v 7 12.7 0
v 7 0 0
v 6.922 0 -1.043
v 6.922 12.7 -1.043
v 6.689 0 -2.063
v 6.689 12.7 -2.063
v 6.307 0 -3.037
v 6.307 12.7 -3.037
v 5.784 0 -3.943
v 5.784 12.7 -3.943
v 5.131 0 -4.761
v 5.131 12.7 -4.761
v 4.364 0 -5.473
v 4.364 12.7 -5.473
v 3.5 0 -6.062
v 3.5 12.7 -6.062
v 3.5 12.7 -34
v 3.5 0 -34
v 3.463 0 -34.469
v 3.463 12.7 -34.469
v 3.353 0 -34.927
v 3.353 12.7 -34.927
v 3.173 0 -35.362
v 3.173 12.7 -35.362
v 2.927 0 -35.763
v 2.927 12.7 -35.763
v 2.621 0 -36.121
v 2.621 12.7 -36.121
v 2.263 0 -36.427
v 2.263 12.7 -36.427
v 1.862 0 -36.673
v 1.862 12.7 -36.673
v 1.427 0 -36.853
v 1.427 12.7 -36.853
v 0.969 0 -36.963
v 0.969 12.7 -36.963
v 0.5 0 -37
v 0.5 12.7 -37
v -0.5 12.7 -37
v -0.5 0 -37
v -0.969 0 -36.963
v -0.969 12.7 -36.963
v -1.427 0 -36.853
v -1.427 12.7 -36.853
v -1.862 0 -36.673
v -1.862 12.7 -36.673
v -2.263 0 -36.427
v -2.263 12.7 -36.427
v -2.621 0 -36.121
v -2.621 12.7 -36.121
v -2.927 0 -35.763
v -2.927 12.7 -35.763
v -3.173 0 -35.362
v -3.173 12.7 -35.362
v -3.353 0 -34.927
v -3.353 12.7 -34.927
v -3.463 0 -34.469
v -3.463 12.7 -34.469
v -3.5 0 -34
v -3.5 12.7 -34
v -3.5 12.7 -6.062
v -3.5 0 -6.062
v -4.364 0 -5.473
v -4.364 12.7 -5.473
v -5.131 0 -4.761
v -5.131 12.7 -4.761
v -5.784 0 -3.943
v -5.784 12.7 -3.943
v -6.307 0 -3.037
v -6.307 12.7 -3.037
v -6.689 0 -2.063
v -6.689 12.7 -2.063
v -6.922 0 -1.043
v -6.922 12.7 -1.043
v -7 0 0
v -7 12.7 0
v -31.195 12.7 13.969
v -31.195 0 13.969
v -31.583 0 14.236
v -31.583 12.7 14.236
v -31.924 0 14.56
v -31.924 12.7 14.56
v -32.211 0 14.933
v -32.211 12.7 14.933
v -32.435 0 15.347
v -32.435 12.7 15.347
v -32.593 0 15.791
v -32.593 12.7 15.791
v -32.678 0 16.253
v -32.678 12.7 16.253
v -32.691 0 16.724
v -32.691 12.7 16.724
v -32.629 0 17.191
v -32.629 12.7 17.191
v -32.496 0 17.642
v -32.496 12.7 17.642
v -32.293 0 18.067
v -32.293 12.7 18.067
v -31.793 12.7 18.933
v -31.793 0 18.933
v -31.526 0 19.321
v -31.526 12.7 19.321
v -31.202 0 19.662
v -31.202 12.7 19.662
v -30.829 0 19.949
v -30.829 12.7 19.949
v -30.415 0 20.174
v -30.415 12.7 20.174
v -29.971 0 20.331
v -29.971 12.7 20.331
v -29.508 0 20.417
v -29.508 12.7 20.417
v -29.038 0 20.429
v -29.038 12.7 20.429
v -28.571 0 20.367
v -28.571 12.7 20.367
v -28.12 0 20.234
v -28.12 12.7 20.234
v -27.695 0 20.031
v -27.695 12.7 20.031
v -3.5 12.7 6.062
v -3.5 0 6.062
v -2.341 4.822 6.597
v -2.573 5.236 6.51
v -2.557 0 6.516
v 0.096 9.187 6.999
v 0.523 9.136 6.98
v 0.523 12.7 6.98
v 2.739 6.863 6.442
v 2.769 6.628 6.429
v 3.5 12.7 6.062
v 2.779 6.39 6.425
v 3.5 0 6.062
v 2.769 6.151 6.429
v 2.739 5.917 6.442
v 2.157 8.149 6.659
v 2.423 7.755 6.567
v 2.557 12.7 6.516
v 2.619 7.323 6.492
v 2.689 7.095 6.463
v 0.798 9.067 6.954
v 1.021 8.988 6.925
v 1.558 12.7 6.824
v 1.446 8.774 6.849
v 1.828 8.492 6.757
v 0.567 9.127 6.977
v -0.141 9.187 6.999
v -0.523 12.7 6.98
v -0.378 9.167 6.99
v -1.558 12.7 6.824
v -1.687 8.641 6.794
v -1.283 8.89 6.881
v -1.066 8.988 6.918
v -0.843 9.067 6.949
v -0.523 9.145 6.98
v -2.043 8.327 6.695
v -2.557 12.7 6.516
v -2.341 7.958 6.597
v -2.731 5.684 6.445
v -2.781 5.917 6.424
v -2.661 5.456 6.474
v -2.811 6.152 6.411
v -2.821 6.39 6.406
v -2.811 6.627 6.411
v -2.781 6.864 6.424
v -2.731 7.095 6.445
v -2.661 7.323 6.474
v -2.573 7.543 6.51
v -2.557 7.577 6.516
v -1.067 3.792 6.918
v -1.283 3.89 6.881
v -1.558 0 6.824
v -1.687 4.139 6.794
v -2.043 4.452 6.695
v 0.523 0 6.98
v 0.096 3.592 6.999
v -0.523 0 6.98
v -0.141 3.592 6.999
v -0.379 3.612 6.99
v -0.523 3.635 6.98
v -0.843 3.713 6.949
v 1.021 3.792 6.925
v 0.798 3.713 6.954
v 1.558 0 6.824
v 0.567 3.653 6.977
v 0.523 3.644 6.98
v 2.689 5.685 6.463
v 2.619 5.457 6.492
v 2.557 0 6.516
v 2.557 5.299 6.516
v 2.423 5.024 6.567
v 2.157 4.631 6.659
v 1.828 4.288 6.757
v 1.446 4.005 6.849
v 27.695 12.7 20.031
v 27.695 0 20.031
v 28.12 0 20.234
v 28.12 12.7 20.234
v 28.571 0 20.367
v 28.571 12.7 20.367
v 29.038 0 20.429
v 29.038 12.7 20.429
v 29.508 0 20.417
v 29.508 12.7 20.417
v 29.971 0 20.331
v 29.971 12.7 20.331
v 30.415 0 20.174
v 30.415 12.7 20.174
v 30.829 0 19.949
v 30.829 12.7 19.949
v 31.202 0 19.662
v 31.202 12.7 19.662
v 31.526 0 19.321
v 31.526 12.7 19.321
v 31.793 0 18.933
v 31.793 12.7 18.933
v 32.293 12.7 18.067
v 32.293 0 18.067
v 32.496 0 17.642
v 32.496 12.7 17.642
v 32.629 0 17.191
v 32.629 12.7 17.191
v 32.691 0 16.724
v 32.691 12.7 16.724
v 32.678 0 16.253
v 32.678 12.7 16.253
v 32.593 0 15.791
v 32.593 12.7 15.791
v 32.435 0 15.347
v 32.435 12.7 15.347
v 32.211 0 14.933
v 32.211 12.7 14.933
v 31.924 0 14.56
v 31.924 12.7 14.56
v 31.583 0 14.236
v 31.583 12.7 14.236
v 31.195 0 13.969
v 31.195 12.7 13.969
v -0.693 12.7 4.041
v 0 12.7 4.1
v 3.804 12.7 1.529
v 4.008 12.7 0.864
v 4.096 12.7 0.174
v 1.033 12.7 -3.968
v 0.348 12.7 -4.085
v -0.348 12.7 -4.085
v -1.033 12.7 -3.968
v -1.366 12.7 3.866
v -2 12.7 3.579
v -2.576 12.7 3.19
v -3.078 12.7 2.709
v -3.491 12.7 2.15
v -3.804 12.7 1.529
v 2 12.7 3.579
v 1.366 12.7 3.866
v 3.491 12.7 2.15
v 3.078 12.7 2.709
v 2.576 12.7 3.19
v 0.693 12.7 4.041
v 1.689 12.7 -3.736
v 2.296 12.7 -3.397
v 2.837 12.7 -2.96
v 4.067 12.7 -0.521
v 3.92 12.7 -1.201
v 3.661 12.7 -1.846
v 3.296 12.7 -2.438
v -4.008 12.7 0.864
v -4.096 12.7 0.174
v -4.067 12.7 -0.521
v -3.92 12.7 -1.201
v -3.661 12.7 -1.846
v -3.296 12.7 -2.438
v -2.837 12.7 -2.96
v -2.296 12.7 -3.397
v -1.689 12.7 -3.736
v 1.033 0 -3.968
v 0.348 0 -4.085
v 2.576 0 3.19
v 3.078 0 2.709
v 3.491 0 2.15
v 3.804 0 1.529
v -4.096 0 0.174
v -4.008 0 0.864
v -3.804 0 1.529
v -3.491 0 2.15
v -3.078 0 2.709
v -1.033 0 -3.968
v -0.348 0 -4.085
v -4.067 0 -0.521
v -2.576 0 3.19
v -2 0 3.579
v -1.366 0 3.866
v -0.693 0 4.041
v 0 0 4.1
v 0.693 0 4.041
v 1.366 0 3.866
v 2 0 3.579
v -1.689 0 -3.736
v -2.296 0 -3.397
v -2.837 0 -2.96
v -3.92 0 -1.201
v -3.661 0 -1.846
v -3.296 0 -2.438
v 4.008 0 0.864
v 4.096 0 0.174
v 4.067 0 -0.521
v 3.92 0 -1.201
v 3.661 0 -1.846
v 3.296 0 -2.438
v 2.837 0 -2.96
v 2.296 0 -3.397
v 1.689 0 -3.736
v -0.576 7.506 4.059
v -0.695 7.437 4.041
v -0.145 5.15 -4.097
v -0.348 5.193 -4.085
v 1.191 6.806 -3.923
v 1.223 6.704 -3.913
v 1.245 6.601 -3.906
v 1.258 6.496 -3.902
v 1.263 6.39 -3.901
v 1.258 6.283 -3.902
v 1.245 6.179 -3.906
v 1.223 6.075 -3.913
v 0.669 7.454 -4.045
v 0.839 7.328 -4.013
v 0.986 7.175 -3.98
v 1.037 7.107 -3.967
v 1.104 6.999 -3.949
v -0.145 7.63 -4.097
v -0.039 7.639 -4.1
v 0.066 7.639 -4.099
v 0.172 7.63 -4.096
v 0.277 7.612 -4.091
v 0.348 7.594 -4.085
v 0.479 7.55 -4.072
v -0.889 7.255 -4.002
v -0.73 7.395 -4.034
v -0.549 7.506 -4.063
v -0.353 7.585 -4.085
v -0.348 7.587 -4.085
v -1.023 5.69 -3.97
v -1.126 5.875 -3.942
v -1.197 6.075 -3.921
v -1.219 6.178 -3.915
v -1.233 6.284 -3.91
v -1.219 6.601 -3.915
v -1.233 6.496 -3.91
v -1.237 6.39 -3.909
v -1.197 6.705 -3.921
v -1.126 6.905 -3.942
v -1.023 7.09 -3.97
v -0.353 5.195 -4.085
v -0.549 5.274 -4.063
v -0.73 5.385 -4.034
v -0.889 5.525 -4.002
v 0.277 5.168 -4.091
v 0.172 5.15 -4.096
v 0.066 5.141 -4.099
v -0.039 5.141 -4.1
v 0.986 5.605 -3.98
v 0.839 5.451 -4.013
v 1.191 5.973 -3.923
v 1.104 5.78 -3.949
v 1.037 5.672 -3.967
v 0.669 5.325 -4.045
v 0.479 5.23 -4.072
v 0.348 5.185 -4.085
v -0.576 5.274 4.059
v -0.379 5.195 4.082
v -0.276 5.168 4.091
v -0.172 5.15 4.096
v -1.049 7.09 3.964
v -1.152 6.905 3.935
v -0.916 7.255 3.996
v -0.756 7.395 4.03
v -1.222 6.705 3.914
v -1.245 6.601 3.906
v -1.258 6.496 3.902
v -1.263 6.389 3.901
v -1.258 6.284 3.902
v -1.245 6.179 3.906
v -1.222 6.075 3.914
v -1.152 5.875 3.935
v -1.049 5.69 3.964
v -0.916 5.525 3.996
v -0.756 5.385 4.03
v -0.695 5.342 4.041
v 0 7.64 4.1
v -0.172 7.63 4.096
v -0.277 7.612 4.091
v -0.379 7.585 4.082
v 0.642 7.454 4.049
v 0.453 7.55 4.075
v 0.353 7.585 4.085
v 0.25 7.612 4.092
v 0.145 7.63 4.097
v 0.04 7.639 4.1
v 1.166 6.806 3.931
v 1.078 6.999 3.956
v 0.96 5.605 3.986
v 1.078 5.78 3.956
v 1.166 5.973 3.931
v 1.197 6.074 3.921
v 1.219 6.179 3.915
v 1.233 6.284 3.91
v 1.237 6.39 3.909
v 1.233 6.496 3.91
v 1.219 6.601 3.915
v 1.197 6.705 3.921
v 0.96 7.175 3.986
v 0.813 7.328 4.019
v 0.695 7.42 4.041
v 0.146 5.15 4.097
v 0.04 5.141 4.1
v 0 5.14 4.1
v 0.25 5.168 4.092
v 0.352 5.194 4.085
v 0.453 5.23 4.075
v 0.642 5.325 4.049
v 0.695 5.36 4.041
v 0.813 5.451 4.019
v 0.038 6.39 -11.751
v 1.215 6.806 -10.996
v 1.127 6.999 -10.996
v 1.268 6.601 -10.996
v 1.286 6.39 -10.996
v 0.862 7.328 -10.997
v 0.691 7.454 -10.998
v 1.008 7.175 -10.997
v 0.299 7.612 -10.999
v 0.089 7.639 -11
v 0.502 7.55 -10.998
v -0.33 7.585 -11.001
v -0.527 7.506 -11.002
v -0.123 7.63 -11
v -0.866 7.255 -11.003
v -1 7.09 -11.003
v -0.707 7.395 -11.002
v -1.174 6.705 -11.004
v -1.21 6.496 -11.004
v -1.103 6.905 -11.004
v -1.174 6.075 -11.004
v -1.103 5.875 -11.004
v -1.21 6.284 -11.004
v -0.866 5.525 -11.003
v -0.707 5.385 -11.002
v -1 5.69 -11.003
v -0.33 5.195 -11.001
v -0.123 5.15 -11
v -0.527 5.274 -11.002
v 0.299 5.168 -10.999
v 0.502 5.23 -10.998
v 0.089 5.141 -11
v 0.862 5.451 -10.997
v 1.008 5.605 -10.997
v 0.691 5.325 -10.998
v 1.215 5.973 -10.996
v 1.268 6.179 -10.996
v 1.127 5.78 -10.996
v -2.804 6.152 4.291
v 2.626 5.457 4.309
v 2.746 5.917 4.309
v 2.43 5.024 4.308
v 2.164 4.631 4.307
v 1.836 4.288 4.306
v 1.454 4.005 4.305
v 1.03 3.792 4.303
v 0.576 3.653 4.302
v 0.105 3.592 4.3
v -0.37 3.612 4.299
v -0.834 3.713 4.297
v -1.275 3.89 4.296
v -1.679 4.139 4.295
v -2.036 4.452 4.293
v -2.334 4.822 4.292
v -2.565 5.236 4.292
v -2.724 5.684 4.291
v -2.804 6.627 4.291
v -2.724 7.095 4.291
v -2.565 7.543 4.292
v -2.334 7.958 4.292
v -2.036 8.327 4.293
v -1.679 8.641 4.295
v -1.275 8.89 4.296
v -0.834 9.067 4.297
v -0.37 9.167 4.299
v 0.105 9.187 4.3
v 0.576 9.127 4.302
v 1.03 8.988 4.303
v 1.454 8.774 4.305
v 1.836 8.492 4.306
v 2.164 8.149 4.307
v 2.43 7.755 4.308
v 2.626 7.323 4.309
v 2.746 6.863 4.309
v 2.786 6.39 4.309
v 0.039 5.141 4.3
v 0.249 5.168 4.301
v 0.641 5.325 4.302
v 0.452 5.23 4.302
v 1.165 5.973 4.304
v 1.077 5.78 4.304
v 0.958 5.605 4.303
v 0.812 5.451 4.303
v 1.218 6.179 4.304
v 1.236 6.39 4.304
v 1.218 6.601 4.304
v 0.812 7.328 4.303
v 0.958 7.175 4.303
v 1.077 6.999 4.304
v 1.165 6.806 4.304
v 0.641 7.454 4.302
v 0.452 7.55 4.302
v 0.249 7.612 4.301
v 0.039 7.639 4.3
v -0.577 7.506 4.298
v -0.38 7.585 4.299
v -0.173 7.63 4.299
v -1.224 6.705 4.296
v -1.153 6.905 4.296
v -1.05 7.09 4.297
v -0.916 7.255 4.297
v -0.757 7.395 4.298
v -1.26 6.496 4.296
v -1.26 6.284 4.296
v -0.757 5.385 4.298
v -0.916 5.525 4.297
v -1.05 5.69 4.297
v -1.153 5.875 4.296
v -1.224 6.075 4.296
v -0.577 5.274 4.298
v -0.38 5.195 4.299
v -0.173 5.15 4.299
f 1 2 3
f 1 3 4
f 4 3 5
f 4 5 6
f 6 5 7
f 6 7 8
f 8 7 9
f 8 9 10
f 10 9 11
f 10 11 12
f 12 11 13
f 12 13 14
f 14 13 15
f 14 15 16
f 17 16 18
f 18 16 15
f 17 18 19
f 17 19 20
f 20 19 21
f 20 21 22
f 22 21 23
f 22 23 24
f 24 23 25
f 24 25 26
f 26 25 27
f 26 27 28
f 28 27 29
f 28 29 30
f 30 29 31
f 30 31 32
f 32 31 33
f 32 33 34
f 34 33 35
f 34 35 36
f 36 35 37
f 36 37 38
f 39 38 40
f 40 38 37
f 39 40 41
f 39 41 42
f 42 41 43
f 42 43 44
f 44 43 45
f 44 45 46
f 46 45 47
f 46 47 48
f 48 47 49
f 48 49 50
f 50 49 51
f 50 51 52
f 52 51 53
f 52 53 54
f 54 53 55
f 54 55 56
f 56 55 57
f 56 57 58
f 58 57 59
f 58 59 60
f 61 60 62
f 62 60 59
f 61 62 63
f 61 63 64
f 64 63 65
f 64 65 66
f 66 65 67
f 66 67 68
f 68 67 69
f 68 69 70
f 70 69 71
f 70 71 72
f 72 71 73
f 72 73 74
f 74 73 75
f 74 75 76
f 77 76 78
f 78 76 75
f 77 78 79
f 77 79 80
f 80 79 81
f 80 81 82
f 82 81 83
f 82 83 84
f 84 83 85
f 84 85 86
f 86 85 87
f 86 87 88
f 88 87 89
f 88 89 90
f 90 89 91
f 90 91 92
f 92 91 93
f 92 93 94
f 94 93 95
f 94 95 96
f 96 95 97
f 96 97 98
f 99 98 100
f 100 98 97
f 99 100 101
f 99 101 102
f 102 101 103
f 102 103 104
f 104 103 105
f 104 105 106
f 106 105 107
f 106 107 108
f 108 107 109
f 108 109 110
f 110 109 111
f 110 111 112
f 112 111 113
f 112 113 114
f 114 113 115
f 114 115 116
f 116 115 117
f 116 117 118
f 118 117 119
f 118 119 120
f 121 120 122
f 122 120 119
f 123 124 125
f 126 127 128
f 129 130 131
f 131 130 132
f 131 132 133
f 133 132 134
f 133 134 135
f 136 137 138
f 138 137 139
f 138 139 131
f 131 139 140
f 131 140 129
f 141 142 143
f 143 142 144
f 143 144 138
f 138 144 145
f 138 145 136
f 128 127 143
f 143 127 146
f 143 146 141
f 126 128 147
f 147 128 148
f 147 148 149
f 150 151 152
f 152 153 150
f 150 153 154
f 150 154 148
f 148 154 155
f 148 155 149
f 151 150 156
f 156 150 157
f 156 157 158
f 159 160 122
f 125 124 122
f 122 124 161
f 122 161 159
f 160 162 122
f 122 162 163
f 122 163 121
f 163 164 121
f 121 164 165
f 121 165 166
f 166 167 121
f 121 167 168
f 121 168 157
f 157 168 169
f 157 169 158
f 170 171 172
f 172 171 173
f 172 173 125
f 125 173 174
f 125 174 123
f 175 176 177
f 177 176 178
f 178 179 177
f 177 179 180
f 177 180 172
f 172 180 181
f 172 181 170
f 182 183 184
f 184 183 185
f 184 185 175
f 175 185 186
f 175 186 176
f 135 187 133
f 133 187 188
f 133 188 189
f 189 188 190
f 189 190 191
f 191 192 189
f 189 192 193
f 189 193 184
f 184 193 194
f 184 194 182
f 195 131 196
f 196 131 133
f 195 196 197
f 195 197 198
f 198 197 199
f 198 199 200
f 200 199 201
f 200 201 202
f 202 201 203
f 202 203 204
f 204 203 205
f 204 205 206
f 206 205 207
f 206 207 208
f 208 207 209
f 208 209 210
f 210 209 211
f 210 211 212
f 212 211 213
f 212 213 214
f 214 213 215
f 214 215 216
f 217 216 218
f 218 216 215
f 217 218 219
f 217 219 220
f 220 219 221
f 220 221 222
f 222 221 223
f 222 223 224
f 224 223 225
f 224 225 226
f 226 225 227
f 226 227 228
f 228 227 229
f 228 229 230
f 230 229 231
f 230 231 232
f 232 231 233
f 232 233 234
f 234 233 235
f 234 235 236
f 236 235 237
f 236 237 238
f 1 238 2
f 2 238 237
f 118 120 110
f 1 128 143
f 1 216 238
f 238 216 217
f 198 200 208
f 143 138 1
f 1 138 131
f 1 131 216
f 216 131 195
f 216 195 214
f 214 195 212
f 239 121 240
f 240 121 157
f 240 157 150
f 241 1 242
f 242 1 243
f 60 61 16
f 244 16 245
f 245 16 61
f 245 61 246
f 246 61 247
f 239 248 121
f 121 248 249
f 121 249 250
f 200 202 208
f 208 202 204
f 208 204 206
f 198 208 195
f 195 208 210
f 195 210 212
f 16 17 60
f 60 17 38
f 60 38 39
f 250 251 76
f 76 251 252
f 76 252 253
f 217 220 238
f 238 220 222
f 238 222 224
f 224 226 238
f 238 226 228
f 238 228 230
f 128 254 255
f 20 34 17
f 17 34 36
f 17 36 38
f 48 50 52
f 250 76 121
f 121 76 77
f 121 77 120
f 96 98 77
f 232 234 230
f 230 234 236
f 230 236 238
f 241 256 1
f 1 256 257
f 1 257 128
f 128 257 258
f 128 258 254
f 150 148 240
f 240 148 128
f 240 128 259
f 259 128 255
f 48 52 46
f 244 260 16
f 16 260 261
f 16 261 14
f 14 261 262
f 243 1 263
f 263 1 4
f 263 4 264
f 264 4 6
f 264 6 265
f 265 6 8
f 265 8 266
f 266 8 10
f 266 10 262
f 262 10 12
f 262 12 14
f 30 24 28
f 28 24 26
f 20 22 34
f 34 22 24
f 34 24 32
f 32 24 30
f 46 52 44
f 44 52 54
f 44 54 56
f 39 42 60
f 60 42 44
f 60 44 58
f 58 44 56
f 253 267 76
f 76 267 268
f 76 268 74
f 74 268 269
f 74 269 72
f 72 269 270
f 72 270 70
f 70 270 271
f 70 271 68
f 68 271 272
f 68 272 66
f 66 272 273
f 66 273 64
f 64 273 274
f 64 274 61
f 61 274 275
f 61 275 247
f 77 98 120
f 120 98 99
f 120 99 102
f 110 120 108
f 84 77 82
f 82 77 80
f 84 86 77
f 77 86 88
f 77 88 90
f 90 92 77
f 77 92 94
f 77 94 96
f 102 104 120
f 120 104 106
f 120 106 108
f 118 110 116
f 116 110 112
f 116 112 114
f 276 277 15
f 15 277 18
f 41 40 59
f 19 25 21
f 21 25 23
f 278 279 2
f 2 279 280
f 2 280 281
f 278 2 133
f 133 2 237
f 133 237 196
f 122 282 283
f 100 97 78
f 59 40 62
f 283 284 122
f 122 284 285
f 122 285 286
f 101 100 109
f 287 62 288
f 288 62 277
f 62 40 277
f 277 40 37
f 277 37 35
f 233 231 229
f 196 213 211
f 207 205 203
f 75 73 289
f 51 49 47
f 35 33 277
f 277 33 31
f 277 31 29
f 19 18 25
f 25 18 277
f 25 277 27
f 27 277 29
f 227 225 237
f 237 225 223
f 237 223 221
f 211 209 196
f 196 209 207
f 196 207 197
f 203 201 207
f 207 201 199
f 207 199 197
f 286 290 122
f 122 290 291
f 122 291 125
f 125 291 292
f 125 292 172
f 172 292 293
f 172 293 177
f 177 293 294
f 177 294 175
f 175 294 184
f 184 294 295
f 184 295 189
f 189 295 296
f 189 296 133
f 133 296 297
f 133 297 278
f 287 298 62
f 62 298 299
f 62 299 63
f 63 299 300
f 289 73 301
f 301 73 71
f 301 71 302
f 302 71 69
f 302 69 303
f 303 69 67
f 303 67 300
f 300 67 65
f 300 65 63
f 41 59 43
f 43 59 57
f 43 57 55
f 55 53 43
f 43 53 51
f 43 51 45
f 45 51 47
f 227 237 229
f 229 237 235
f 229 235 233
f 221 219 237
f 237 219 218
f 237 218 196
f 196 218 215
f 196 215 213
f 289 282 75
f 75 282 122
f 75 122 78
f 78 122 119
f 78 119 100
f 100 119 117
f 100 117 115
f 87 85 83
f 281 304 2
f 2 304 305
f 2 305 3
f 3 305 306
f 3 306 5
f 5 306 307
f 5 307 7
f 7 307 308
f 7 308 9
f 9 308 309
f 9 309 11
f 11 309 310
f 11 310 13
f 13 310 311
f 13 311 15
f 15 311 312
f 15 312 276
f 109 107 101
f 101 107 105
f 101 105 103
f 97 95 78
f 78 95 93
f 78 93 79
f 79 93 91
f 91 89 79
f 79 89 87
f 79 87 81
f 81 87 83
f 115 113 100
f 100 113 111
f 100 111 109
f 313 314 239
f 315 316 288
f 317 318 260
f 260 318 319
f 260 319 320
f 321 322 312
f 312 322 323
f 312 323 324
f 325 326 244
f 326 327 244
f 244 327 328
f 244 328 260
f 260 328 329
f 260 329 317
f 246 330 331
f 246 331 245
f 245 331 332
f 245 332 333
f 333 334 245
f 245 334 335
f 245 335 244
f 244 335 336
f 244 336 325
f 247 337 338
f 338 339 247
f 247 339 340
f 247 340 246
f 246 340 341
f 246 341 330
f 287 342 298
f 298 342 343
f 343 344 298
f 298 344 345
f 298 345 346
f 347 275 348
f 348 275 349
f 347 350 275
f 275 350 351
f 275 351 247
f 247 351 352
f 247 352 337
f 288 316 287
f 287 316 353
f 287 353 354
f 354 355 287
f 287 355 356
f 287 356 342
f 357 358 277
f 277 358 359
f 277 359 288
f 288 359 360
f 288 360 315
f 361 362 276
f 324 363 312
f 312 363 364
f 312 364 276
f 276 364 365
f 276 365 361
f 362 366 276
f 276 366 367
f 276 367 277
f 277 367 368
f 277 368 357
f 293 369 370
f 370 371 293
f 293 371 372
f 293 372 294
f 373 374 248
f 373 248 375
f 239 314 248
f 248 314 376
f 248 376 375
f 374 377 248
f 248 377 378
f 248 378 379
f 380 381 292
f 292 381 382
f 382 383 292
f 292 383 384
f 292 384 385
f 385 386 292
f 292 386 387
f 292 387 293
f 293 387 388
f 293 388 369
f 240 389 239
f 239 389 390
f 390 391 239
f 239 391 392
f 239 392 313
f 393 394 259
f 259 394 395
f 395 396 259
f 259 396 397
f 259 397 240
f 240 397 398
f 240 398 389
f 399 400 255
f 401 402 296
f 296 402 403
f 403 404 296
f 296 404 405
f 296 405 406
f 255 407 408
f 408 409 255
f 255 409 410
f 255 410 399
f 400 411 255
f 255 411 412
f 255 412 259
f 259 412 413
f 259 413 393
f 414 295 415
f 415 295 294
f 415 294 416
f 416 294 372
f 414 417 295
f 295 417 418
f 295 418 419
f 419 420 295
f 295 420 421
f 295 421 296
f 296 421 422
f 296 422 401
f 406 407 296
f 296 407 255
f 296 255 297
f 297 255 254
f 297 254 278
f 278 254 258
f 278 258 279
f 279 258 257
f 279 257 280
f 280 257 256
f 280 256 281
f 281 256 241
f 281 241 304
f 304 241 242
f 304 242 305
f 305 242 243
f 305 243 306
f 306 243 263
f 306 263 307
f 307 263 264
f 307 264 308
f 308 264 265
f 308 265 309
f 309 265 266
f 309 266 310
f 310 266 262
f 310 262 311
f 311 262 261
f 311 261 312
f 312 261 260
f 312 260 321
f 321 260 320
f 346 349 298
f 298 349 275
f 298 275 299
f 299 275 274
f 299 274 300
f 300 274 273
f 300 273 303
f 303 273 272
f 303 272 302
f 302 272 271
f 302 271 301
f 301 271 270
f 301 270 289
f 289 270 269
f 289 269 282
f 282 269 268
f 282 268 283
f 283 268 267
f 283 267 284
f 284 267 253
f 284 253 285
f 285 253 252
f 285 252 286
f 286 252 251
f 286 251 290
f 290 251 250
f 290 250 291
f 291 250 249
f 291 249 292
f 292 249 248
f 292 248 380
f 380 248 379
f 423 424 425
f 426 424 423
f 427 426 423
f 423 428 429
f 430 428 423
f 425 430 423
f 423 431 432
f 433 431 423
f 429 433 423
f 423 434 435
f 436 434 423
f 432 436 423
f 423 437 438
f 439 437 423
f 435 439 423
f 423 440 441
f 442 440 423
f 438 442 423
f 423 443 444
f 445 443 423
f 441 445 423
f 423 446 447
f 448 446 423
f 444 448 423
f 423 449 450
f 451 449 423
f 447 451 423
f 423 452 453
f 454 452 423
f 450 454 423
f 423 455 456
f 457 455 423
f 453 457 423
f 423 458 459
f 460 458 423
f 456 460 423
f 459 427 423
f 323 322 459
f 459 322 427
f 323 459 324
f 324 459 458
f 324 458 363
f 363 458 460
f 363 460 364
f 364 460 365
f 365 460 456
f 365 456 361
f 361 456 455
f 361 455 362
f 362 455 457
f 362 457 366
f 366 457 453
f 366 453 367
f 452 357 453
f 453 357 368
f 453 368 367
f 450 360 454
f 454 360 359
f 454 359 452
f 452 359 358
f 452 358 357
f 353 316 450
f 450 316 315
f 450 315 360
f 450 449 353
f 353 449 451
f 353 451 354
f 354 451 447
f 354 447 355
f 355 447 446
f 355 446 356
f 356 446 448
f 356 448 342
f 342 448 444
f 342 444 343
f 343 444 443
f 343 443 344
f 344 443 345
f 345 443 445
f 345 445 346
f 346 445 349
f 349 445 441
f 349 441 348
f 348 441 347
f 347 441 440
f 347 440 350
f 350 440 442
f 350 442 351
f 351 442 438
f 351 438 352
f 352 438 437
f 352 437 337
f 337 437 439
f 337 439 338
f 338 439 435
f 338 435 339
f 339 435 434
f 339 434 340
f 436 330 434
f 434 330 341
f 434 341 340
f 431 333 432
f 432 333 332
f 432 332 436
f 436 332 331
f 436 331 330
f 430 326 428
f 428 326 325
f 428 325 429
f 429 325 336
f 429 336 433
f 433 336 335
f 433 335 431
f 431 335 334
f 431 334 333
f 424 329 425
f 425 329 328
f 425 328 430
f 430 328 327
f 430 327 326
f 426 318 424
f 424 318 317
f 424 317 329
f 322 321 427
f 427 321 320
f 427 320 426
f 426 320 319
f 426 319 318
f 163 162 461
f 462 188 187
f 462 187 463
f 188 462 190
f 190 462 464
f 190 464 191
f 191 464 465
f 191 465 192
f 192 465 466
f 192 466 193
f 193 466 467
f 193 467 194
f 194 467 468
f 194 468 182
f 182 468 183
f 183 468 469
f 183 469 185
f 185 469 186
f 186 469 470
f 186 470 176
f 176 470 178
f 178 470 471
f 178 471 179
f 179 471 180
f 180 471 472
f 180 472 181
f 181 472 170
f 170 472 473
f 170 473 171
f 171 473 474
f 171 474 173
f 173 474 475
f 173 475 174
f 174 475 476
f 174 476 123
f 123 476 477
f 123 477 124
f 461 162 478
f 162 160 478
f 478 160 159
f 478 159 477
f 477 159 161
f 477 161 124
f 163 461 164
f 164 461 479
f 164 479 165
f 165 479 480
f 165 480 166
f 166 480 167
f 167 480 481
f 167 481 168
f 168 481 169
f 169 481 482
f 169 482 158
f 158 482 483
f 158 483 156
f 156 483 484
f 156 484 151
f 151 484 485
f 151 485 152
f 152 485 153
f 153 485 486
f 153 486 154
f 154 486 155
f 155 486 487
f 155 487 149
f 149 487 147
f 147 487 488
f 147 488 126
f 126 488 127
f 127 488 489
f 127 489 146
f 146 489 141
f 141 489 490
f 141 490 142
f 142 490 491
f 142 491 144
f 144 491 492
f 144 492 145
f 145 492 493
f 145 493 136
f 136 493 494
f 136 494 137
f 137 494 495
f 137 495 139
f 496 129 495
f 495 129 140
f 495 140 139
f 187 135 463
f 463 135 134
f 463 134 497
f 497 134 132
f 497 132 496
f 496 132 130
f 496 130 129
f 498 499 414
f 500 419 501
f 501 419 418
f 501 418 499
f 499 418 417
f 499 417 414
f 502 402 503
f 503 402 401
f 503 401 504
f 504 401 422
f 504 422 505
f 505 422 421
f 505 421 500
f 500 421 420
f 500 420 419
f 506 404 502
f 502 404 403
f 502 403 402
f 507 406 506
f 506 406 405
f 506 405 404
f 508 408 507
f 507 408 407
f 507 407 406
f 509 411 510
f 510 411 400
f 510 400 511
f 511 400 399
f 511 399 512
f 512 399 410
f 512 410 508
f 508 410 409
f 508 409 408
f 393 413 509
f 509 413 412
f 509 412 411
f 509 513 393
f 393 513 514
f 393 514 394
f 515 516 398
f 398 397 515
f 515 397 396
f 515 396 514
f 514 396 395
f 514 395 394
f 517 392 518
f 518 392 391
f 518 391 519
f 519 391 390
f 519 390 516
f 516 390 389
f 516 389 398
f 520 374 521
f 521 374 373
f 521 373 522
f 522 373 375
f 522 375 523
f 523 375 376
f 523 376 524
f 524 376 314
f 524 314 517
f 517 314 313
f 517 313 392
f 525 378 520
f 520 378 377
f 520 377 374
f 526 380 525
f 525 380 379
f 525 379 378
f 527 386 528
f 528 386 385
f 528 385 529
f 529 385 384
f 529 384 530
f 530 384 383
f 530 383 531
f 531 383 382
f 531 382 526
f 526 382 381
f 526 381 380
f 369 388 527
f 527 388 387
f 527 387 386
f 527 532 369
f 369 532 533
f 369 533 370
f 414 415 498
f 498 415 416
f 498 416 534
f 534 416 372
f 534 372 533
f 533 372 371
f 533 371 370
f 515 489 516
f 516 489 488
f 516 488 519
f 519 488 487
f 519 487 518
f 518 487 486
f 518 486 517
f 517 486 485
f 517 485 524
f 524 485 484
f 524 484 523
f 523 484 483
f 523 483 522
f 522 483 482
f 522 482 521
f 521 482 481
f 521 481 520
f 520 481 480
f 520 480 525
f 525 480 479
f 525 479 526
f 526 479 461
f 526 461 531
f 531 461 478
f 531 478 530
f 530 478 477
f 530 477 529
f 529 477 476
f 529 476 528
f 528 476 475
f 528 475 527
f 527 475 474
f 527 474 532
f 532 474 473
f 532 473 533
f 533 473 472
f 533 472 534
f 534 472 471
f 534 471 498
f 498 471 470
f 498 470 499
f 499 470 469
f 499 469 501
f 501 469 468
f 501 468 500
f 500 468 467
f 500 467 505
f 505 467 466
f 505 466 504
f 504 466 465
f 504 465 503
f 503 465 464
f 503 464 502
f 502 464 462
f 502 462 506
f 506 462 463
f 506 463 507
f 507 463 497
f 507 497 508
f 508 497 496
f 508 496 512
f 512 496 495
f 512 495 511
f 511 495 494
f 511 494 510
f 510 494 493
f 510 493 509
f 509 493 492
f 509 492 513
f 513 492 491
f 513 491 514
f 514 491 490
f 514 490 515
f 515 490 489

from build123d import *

# Parameters (mm, degrees)
BOSS_EXTRUDE1_DEPTH                               = 12.7
SKETCH2_R                                         = 4.1
CUT_EXTRUDE1_DEPTH                                = 51.982782527
CBORE_FOR_M5_HEX_HEAD_BOLT1_D                     = 2.5
CBORE_FOR_M5_HEX_HEAD_BOLT1_DEPTH                 = 18
CBORE_FOR_M5_HEX_HEAD_BOLT1_CBORE_D               = 5.6
CBORE_FOR_M5_HEX_HEAD_BOLT1_CBORE_DEPTH           = 2.7
CBORE_FOR_M5_HEX_HEAD_BOLT1_TIP                   = 0.751075774
CBORE_FOR_M5_HEX_HEAD_BOLT1_ON_FACE_2_D           = 2.5
CBORE_FOR_M5_HEX_HEAD_BOLT1_ON_FACE_2_DEPTH       = 18
CBORE_FOR_M5_HEX_HEAD_BOLT1_ON_FACE_2_CBORE_D     = 5.6
CBORE_FOR_M5_HEX_HEAD_BOLT1_ON_FACE_2_CBORE_DEPTH = 2.7
CBORE_FOR_M5_HEX_HEAD_BOLT1_ON_FACE_2_TIP         = 0.751075774


with BuildPart() as part:
    # Sketch1 → Boss-Extrude1 (new body)
    with BuildSketch(Plane(origin=(0, 0, 0), x_dir=(1, 0, 0), z_dir=(0, 1, 0))):
        with BuildLine():
            Line((-0.5, 37), (0.5, 37))
            ThreePointArc((0.5, 37), (2.621320344, 36.121320344), (3.5, 34))
            Line((3.5, 34), (3.5, 6.062177826))
            ThreePointArc((3.5, 6.062177826), (6.062177826, 3.5), (7, 0))
            Line((7, 0), (31.194863729, -13.968911087))
            ThreePointArc((31.194863729, -13.968911087), (32.592641208, -15.790530163), (32.29293994, -18.066987298))
            Line((32.29293994, -18.066987298), (31.79293994, -18.933012702))
            ThreePointArc((31.79293994, -18.933012702), (29.971320864, -20.330790181), (27.694863729, -20.031088913))
            Line((27.694863729, -20.031088913), (3.5, -6.062177826))
            ThreePointArc((3.5, -6.062177826), (0, -7), (-3.5, -6.062177826))
            Line((-3.5, -6.062177826), (-27.694863729, -20.031088913))
            ThreePointArc((-27.694863729, -20.031088913), (-29.971320864, -20.330790181), (-31.79293994, -18.933012702))
            Line((-31.79293994, -18.933012702), (-32.29293994, -18.066987298))
            ThreePointArc((-32.29293994, -18.066987298), (-32.592641208, -15.790530163), (-31.194863729, -13.968911087))
            Line((-31.194863729, -13.968911087), (-7, 0))
            ThreePointArc((-7, 0), (-6.062177826, 3.5), (-3.5, 6.062177826))
            Line((-3.5, 6.062177826), (-3.5, 34))
            ThreePointArc((-3.5, 34), (-2.621320344, 36.121320344), (-0.5, 37))
        make_face()
    extrude(amount=BOSS_EXTRUDE1_DEPTH)

    # Sketch2 → Cut-Extrude1 (cut, through all)
    with BuildSketch(Plane(origin=(0, 12.7, 0), x_dir=(1, 0, 0), z_dir=(0, 1, 0))):
        with Locations(Location((0, 0, 0), (0, 0, 270))):
            Circle(SKETCH2_R)
    extrude(amount=-CUT_EXTRUDE1_DEPTH, mode=Mode.SUBTRACT)

    # CBORE for M5 Hex Head Bolt1
    with Locations(Plane(origin=(-0.022879542, 6.389773721, 6.999962609), x_dir=(0.99999465842, 0, 0.003268506014), z_dir=(-0.003268506014, 0, 0.99999465842))):
        with Locations((0, 0)):
            CounterBoreHole(CBORE_FOR_M5_HEX_HEAD_BOLT1_D / 2, CBORE_FOR_M5_HEX_HEAD_BOLT1_CBORE_D / 2, CBORE_FOR_M5_HEX_HEAD_BOLT1_CBORE_DEPTH, depth=CBORE_FOR_M5_HEX_HEAD_BOLT1_DEPTH)
            with Locations((0, 0, -(CBORE_FOR_M5_HEX_HEAD_BOLT1_DEPTH + CBORE_FOR_M5_HEX_HEAD_BOLT1_TIP / 2))):  # 118° drill point
                Cone(0, CBORE_FOR_M5_HEX_HEAD_BOLT1_D / 2, CBORE_FOR_M5_HEX_HEAD_BOLT1_TIP, mode=Mode.SUBTRACT)

    # CBORE for M5 Hex Head Bolt1 on face 2
    with Locations(Plane(origin=(1.383929949, -4.684067914, 0), x_dir=(0.99999465842, 0, 0.003268506014), z_dir=(-0.003268506014, 0, 0.99999465842))):
        with Locations((0, 0)):
            CounterBoreHole(CBORE_FOR_M5_HEX_HEAD_BOLT1_ON_FACE_2_D / 2, CBORE_FOR_M5_HEX_HEAD_BOLT1_ON_FACE_2_CBORE_D / 2, CBORE_FOR_M5_HEX_HEAD_BOLT1_ON_FACE_2_CBORE_DEPTH, depth=CBORE_FOR_M5_HEX_HEAD_BOLT1_ON_FACE_2_DEPTH)
            with Locations((0, 0, -(CBORE_FOR_M5_HEX_HEAD_BOLT1_ON_FACE_2_DEPTH + CBORE_FOR_M5_HEX_HEAD_BOLT1_ON_FACE_2_TIP / 2))):  # 118° drill point
                Cone(0, CBORE_FOR_M5_HEX_HEAD_BOLT1_ON_FACE_2_D / 2, CBORE_FOR_M5_HEX_HEAD_BOLT1_ON_FACE_2_TIP, mode=Mode.SUBTRACT)


solid = part.part
